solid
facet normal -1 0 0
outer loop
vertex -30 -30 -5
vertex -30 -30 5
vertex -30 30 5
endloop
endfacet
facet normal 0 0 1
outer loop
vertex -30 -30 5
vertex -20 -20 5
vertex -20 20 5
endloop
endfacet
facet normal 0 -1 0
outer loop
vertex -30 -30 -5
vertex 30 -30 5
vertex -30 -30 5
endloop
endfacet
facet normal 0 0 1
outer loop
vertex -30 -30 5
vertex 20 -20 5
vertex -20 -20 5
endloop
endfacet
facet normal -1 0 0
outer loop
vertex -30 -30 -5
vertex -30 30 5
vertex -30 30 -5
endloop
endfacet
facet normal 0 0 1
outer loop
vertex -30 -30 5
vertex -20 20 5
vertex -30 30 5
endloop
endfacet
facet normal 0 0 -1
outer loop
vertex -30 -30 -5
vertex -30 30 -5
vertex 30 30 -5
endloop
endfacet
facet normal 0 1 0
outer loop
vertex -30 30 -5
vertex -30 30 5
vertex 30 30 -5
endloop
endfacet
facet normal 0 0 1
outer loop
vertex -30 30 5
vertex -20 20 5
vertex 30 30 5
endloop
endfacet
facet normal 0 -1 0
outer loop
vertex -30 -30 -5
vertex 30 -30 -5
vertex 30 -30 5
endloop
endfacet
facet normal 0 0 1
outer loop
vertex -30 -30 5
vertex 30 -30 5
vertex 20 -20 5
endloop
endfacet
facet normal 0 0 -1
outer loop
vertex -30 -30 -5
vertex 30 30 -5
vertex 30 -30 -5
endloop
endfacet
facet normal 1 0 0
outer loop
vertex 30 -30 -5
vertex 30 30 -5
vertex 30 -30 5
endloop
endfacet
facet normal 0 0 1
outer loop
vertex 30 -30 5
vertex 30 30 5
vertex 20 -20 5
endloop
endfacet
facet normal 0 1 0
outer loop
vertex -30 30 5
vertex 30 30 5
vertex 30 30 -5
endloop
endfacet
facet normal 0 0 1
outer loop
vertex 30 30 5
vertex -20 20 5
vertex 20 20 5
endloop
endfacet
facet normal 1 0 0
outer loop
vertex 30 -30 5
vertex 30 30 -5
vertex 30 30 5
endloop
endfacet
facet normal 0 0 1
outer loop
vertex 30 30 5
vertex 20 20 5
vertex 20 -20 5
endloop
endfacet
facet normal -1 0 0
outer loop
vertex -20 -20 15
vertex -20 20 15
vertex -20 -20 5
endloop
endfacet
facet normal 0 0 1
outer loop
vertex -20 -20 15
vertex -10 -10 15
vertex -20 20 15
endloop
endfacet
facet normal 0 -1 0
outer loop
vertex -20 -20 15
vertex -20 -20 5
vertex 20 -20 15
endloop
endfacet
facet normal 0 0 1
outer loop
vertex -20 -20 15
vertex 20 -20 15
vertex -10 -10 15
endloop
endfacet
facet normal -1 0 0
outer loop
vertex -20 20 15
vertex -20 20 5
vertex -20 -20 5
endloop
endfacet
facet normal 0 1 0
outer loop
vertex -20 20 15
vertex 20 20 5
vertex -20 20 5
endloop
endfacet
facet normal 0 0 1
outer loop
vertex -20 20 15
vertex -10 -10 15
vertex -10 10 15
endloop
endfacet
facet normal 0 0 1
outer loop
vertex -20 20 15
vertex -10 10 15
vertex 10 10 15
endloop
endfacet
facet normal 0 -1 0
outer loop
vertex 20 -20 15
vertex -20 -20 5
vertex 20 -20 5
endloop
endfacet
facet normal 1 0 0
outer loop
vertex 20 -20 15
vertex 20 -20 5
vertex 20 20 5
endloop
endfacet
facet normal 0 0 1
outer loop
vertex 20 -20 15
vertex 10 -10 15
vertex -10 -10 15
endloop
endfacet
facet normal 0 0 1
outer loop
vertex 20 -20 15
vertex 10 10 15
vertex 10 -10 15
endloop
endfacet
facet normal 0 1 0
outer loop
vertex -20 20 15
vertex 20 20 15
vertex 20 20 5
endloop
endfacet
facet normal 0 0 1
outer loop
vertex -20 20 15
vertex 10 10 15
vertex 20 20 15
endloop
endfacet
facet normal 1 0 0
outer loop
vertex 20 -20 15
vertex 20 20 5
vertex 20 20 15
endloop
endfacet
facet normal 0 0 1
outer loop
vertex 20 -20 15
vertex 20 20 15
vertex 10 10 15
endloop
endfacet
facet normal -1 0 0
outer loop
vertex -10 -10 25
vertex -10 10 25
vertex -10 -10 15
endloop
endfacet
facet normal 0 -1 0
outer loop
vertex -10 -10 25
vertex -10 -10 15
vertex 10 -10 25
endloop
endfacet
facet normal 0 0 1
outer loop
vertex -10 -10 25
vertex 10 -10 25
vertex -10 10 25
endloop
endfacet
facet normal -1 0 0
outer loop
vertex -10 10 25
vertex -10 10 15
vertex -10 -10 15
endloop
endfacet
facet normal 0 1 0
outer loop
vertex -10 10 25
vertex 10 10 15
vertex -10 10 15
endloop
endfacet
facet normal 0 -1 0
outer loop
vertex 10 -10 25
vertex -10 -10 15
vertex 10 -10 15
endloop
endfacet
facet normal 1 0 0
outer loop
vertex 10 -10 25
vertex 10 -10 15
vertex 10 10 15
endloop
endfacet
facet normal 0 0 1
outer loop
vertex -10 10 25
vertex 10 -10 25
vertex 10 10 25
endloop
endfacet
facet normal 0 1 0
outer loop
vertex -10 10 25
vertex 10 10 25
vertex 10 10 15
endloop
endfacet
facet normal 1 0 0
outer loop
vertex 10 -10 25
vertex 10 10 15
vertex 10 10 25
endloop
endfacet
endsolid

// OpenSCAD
// 3段階段状ピラミッド（底面60mm×60mm、上層40mm×40mm、最上層20mm×20mm）
cube([60, 60, 10], center = true);
translate([0, 0, 10]) cube([40, 40, 10], center = true);
translate([0, 0, 20]) cube([20, 20, 10], center = true);
